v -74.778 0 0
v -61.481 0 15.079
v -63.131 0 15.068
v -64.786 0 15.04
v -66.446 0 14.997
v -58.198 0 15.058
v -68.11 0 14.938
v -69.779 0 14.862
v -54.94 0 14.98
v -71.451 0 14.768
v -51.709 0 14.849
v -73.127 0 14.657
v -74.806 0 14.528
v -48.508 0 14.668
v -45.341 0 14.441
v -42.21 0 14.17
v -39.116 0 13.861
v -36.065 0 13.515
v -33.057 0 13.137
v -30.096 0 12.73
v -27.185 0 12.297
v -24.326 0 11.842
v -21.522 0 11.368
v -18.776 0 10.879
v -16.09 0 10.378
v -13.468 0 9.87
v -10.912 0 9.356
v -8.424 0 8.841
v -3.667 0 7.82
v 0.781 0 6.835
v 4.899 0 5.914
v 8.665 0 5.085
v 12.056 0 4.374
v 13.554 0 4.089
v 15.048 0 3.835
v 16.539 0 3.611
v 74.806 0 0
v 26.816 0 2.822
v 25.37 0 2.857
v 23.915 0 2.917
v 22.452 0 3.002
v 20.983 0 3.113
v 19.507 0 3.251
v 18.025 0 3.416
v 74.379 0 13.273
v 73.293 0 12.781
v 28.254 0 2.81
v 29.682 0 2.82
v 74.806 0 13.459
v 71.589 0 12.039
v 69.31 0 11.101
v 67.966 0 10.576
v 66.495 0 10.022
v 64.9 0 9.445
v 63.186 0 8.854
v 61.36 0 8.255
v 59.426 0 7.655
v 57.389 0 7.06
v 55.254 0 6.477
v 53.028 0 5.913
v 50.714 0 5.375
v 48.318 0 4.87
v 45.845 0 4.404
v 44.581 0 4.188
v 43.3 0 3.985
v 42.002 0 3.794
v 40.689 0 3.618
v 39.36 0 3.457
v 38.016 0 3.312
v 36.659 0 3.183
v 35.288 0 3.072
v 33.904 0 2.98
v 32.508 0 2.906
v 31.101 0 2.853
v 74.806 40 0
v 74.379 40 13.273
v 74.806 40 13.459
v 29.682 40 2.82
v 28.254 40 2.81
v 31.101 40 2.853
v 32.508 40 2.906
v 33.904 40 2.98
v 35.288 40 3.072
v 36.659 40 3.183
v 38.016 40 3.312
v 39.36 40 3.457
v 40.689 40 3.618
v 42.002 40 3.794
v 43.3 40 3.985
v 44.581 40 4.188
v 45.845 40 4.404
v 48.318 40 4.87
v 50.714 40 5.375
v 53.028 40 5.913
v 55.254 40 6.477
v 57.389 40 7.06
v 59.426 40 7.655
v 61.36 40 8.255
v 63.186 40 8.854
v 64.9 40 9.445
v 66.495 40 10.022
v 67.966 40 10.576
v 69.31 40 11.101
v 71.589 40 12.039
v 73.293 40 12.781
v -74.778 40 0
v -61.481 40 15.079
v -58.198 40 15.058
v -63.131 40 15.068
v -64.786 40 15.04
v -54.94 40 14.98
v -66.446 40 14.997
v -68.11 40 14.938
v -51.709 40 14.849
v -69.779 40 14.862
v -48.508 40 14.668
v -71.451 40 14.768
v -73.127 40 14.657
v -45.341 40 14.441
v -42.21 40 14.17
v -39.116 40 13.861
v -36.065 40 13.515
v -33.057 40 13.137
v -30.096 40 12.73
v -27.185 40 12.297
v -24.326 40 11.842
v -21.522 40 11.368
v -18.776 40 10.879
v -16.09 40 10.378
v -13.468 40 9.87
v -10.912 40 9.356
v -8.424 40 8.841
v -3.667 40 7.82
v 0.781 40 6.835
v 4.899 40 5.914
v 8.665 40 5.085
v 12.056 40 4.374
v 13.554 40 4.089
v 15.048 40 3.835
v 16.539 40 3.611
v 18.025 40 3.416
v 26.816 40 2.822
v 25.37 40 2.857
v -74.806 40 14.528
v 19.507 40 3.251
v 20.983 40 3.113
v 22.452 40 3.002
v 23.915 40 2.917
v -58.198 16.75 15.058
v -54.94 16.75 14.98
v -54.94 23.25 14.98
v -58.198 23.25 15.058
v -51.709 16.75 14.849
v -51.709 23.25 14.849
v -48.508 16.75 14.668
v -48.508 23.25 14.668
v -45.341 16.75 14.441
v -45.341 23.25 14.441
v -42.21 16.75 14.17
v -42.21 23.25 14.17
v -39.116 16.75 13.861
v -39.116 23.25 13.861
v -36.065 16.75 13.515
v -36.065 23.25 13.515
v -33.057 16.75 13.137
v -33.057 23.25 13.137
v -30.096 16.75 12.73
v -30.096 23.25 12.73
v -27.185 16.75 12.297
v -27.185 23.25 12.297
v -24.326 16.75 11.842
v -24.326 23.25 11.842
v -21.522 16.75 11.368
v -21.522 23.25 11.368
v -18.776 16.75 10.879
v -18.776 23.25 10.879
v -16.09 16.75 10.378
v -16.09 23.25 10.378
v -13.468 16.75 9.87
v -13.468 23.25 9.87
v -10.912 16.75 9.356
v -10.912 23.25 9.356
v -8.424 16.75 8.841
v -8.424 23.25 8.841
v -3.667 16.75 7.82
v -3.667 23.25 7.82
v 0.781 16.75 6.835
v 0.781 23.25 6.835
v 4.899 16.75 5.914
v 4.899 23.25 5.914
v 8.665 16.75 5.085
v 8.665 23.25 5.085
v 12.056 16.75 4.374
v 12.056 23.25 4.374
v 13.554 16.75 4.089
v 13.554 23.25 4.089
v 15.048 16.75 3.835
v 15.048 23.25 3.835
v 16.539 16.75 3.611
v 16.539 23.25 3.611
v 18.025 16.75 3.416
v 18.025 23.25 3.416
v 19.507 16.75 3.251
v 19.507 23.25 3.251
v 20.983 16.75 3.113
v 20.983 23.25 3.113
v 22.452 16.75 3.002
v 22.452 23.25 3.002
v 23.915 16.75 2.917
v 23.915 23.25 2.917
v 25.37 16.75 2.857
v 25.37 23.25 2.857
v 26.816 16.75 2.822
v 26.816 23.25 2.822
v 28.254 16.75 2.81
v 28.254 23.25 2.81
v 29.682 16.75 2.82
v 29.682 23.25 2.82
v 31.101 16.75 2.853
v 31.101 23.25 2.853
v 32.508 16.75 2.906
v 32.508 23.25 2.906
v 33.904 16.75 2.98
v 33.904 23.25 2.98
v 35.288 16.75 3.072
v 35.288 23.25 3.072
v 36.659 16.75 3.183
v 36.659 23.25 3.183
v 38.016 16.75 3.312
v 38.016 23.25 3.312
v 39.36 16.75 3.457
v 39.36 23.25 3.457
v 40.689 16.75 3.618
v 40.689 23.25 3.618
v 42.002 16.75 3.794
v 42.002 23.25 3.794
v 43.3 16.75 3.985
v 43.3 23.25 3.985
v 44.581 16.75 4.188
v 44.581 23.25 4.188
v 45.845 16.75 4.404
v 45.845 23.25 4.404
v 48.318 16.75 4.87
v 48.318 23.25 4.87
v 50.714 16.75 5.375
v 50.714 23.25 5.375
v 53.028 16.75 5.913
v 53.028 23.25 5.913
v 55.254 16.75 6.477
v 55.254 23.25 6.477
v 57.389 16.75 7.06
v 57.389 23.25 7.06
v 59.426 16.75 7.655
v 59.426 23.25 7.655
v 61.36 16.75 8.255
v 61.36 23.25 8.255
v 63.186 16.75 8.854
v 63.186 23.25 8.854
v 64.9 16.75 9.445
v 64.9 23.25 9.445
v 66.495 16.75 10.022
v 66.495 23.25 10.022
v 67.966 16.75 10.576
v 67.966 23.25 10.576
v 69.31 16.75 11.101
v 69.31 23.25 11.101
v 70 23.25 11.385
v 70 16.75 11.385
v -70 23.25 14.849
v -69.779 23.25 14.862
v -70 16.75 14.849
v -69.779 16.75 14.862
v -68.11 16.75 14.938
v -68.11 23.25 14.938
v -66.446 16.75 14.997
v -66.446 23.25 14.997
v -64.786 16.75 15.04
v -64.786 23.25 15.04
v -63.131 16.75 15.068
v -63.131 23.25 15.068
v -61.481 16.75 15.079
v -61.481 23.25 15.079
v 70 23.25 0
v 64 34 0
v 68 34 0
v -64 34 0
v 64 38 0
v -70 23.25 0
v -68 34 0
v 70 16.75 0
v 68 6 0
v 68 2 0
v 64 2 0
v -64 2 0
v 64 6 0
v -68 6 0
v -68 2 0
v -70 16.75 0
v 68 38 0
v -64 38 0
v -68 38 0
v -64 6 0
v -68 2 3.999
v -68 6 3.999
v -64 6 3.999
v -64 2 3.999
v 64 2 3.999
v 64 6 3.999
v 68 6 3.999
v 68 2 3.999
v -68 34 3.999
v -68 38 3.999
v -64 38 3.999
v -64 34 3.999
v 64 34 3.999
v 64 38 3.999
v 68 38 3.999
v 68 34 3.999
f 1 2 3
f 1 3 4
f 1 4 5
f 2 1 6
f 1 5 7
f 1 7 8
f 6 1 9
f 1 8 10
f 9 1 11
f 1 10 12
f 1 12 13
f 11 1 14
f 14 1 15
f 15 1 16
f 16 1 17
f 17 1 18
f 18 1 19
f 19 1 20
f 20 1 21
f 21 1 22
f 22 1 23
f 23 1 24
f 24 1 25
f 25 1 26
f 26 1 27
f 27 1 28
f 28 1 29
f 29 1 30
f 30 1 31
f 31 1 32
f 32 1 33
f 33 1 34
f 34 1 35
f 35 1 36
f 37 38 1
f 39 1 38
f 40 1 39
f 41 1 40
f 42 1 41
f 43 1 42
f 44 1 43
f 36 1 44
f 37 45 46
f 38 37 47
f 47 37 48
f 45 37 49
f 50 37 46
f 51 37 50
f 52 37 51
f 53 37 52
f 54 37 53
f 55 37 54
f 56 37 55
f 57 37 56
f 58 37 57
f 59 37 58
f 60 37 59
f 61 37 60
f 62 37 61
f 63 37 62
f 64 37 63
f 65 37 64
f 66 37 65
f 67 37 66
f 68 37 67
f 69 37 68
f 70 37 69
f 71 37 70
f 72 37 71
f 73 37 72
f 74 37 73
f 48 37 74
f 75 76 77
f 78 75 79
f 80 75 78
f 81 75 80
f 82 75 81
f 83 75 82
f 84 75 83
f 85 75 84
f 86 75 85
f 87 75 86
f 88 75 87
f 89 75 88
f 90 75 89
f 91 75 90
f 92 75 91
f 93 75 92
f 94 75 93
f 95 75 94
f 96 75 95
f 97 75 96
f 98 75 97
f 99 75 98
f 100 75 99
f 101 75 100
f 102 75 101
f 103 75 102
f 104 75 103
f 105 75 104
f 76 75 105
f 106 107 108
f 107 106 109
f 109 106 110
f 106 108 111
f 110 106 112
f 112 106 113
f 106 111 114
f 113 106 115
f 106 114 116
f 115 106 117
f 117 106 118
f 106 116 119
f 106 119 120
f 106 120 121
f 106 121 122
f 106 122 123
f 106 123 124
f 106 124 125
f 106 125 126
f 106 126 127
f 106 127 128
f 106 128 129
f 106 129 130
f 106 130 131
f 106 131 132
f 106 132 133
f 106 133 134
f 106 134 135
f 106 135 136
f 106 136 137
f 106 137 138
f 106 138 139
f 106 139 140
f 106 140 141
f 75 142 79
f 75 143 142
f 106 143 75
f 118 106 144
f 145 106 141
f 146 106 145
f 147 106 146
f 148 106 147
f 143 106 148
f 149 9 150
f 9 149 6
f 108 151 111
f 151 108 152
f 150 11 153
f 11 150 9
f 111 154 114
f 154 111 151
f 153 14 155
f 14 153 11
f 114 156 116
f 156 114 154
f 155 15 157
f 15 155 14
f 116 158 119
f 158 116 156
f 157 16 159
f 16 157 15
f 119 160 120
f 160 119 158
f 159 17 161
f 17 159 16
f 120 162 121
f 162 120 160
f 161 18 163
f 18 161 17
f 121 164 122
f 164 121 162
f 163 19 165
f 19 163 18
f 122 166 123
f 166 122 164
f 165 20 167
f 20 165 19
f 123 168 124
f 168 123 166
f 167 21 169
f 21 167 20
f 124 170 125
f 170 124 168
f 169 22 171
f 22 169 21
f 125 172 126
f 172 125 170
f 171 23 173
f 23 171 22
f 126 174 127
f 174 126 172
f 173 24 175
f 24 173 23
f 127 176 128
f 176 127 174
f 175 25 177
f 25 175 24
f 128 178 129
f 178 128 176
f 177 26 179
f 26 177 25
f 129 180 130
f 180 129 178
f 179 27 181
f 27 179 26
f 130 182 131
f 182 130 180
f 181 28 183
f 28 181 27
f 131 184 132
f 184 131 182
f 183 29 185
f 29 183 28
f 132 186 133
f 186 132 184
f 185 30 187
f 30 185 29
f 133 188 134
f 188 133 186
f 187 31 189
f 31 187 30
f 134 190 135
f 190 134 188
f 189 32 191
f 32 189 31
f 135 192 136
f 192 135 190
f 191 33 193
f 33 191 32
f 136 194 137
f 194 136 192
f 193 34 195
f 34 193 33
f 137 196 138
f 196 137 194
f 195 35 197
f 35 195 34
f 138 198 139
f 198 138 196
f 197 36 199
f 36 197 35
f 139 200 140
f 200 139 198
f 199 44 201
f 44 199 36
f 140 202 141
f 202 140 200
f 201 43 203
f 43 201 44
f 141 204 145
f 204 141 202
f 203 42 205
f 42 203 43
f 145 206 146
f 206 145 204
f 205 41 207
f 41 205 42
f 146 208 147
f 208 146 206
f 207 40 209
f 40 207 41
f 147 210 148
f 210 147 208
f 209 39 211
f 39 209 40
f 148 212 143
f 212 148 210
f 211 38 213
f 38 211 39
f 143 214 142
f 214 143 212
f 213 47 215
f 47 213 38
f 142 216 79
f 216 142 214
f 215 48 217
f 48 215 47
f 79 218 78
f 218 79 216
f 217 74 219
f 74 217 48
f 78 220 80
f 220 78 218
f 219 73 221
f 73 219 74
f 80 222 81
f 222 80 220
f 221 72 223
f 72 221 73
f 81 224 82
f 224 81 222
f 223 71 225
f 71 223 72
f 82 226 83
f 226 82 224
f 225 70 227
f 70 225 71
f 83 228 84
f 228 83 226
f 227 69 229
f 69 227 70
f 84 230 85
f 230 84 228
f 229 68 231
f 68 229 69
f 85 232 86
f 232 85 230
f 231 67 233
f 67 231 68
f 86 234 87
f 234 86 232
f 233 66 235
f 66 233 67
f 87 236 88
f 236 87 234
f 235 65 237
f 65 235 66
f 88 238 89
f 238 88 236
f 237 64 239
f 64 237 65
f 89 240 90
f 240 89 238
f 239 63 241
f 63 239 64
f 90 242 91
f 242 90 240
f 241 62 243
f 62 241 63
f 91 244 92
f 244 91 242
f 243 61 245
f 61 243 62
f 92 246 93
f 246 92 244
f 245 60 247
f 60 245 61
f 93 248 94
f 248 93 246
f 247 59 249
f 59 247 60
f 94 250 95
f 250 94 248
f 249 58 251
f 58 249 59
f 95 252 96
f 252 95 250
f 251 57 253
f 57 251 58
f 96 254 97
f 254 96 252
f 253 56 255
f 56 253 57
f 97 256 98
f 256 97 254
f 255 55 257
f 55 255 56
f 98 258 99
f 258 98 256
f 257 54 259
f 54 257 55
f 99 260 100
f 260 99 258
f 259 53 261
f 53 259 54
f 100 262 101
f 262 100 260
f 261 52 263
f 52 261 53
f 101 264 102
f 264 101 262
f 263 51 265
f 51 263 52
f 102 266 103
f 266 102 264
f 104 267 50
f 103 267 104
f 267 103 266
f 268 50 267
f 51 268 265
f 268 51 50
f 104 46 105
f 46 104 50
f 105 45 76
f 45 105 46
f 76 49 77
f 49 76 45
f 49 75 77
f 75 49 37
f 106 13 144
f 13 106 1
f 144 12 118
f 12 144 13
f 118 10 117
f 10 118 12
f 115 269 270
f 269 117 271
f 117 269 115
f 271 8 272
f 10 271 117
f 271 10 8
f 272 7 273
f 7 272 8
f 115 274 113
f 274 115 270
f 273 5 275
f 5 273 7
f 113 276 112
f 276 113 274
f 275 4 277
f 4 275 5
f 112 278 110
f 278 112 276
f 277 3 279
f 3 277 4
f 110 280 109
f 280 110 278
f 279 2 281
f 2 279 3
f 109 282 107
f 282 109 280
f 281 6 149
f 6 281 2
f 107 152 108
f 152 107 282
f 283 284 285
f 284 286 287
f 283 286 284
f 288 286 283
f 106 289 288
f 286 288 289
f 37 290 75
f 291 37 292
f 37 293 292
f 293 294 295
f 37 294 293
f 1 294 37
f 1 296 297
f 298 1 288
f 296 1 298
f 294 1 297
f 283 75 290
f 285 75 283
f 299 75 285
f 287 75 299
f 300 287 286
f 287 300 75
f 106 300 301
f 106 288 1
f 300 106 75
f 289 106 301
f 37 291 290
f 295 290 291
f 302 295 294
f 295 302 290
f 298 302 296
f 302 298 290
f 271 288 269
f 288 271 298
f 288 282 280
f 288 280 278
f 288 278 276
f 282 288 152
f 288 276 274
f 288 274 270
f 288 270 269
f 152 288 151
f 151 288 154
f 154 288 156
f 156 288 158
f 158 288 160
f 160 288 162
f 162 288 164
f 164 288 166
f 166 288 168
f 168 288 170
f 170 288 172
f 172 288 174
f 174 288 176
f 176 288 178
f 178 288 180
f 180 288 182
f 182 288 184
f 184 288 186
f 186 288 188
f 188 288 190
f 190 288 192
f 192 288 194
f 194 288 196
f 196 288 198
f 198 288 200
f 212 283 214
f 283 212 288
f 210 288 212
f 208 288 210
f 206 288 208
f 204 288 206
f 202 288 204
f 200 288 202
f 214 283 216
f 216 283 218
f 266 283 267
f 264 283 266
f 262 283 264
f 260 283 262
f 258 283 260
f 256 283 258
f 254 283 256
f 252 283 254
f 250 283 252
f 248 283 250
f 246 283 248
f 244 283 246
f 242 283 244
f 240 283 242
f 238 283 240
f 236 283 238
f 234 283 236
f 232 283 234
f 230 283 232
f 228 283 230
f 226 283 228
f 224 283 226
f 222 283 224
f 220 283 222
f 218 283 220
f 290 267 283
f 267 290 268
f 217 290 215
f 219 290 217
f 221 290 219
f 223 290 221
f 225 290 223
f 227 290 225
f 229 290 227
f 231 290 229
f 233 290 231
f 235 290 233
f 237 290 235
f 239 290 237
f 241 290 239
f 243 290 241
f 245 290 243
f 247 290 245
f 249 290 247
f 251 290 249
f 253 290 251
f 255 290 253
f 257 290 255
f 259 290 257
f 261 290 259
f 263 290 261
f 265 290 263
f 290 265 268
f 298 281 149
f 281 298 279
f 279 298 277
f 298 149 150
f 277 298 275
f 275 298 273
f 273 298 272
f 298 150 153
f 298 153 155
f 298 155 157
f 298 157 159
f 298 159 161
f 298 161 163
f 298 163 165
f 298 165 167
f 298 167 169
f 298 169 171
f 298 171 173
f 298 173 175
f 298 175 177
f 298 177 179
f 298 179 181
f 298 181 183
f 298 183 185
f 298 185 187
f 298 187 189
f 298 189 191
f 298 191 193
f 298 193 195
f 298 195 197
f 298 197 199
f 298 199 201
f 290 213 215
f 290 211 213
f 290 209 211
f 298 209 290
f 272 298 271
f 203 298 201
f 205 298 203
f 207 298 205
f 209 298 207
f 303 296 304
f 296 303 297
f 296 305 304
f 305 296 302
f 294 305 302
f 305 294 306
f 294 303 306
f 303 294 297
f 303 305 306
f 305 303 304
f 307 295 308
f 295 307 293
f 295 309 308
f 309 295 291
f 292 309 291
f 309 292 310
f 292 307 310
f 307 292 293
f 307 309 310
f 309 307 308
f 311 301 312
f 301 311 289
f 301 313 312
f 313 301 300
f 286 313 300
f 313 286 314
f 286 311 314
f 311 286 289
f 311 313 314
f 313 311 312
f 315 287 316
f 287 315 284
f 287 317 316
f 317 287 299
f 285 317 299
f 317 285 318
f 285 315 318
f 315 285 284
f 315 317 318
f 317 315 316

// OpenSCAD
// file: constants.scad
WIDTH = 40;
LENGTH = 150;
BASE_HEIGHT = 20;
WALL_THICKNESS = 5;

DISTANCE_OF_HOLE_FROM_EDGE = 4;
KEY_SIZE = 4;

ACRYLIC_THICKNESS = 6.5;
SLOT_HEIGHT = 30;

HEIGHT_OF_HALF_WALL = 12;

RASPI_WIDTH = 23;
RASPI_LENGTH = 58;
HOLE_RADIUS = 1.2;

STRIP_HEIGHT = 2;
// main file
/*
  This file contains the top part of the base that contains a slot for the acrylic plate
  author: Aliasgar Kutiyanawala
  last modified: 11/26/2017
*/

include <constants.scad>;

$fn=100;


//top is obtained from the svg file 'top.svg'
module top(h)
{
  scale([1.5, 1, 1]) union()
  {
    linear_extrude(height=h)
      polygon([[-49.870481,-14.527869],[-48.751253,-14.657035],[-47.634089,-14.768129],[-46.519218,-14.861583],[-45.406870,-14.937828],[-44.297274,-14.997299],[-43.190660,-15.040426],[-42.087257,-15.067642],[-40.987295,-15.079381],[-38.798610,-15.058151],[-36.626443,-14.980197],[-34.472629,-14.848976],[-32.339005,-14.667947],[-30.227405,-14.440569],[-28.139667,-14.170301],[-26.077626,-13.860601],[-24.043118,-13.514929],[-22.037979,-13.136743],[-20.064046,-12.729503],[-18.123154,-12.296665],[-16.217140,-11.841691],[-14.347839,-11.368037],[-12.517087,-10.879164],[-10.726721,-10.378529],[-8.978577,-9.869592],[-7.274490,-9.355812],[-5.616296,-8.840646],[-2.444935,-7.819996],[0.520820,-6.835312],[3.266280,-5.914265],[5.776756,-5.084524],[8.037561,-4.373759],[9.035897,-4.088574],[10.032196,-3.834540],[11.026025,-3.610805],[12.016955,-3.416519],[13.004554,-3.250830],[13.988391,-3.112887],[14.968036,-3.001839],[15.943057,-2.916835],[16.913024,-2.857024],[17.877507,-2.821554],[18.836073,-2.809575],[19.788292,-2.820234],[20.733734,-2.852682],[21.671967,-2.906067],[22.602561,-2.979537],[23.525085,-3.072242],[24.439107,-3.183330],[25.344197,-3.311950],[26.239925,-3.457251],[27.125859,-3.618383],[28.001568,-3.794492],[28.866621,-3.984730],[29.720588,-4.188243],[30.563038,-4.404182],[32.211662,-4.869931],[33.809047,-5.375167],[35.351746,-5.913080],[36.836311,-6.476861],[38.259296,-7.059701],[39.617253,-7.654790],[40.906736,-8.255320],[42.124298,-8.854480],[43.266491,-9.445462],[44.329869,-10.021456],[45.310985,-10.575653],[46.206392,-11.101244],[47.726291,-12.039369],[48.861989,-12.781356],[49.585911,-13.272731],[49.870481,-13.459019],[49.870481,15.079381],[-49.832432,15.000381]]);
  }
}

module complete_top(){
    difference(){
        top(WIDTH);
        
        //cut off the part at the bottom
        buffer = 10;
        translate([0, buffer, WIDTH/2]){
            cube([LENGTH + buffer, buffer * 2, WIDTH + buffer], center = true);
        }
        
        //create the slot
        z_height = -10;
        translate([0, z_height, WIDTH/2]){
            cube([LENGTH - 2 * WALL_THICKNESS, SLOT_HEIGHT, ACRYLIC_THICKNESS], center = true);
        }
        
        keyX = LENGTH/2 - WALL_THICKNESS - DISTANCE_OF_HOLE_FROM_EDGE;
        
        //create the slots for the keys
        translate([-keyX, -KEY_SIZE/2 + 0.001, DISTANCE_OF_HOLE_FROM_EDGE]){
            cube(KEY_SIZE, center = true);
        }
        
        translate([keyX, -KEY_SIZE/2 + 0.001, DISTANCE_OF_HOLE_FROM_EDGE]){
            cube(KEY_SIZE, center = true);
        }
        
        translate([-keyX, -KEY_SIZE/2 + 0.001, WIDTH - DISTANCE_OF_HOLE_FROM_EDGE]){
            cube(KEY_SIZE, center = true);
        }
        
        translate([keyX, -KEY_SIZE/2 + 0.001, WIDTH - DISTANCE_OF_HOLE_FROM_EDGE]){
            cube(KEY_SIZE, center = true);
        }
    }
}

//rotate the top for easier 3d printing
rotate([270, 0, 0]){
    complete_top();
}
